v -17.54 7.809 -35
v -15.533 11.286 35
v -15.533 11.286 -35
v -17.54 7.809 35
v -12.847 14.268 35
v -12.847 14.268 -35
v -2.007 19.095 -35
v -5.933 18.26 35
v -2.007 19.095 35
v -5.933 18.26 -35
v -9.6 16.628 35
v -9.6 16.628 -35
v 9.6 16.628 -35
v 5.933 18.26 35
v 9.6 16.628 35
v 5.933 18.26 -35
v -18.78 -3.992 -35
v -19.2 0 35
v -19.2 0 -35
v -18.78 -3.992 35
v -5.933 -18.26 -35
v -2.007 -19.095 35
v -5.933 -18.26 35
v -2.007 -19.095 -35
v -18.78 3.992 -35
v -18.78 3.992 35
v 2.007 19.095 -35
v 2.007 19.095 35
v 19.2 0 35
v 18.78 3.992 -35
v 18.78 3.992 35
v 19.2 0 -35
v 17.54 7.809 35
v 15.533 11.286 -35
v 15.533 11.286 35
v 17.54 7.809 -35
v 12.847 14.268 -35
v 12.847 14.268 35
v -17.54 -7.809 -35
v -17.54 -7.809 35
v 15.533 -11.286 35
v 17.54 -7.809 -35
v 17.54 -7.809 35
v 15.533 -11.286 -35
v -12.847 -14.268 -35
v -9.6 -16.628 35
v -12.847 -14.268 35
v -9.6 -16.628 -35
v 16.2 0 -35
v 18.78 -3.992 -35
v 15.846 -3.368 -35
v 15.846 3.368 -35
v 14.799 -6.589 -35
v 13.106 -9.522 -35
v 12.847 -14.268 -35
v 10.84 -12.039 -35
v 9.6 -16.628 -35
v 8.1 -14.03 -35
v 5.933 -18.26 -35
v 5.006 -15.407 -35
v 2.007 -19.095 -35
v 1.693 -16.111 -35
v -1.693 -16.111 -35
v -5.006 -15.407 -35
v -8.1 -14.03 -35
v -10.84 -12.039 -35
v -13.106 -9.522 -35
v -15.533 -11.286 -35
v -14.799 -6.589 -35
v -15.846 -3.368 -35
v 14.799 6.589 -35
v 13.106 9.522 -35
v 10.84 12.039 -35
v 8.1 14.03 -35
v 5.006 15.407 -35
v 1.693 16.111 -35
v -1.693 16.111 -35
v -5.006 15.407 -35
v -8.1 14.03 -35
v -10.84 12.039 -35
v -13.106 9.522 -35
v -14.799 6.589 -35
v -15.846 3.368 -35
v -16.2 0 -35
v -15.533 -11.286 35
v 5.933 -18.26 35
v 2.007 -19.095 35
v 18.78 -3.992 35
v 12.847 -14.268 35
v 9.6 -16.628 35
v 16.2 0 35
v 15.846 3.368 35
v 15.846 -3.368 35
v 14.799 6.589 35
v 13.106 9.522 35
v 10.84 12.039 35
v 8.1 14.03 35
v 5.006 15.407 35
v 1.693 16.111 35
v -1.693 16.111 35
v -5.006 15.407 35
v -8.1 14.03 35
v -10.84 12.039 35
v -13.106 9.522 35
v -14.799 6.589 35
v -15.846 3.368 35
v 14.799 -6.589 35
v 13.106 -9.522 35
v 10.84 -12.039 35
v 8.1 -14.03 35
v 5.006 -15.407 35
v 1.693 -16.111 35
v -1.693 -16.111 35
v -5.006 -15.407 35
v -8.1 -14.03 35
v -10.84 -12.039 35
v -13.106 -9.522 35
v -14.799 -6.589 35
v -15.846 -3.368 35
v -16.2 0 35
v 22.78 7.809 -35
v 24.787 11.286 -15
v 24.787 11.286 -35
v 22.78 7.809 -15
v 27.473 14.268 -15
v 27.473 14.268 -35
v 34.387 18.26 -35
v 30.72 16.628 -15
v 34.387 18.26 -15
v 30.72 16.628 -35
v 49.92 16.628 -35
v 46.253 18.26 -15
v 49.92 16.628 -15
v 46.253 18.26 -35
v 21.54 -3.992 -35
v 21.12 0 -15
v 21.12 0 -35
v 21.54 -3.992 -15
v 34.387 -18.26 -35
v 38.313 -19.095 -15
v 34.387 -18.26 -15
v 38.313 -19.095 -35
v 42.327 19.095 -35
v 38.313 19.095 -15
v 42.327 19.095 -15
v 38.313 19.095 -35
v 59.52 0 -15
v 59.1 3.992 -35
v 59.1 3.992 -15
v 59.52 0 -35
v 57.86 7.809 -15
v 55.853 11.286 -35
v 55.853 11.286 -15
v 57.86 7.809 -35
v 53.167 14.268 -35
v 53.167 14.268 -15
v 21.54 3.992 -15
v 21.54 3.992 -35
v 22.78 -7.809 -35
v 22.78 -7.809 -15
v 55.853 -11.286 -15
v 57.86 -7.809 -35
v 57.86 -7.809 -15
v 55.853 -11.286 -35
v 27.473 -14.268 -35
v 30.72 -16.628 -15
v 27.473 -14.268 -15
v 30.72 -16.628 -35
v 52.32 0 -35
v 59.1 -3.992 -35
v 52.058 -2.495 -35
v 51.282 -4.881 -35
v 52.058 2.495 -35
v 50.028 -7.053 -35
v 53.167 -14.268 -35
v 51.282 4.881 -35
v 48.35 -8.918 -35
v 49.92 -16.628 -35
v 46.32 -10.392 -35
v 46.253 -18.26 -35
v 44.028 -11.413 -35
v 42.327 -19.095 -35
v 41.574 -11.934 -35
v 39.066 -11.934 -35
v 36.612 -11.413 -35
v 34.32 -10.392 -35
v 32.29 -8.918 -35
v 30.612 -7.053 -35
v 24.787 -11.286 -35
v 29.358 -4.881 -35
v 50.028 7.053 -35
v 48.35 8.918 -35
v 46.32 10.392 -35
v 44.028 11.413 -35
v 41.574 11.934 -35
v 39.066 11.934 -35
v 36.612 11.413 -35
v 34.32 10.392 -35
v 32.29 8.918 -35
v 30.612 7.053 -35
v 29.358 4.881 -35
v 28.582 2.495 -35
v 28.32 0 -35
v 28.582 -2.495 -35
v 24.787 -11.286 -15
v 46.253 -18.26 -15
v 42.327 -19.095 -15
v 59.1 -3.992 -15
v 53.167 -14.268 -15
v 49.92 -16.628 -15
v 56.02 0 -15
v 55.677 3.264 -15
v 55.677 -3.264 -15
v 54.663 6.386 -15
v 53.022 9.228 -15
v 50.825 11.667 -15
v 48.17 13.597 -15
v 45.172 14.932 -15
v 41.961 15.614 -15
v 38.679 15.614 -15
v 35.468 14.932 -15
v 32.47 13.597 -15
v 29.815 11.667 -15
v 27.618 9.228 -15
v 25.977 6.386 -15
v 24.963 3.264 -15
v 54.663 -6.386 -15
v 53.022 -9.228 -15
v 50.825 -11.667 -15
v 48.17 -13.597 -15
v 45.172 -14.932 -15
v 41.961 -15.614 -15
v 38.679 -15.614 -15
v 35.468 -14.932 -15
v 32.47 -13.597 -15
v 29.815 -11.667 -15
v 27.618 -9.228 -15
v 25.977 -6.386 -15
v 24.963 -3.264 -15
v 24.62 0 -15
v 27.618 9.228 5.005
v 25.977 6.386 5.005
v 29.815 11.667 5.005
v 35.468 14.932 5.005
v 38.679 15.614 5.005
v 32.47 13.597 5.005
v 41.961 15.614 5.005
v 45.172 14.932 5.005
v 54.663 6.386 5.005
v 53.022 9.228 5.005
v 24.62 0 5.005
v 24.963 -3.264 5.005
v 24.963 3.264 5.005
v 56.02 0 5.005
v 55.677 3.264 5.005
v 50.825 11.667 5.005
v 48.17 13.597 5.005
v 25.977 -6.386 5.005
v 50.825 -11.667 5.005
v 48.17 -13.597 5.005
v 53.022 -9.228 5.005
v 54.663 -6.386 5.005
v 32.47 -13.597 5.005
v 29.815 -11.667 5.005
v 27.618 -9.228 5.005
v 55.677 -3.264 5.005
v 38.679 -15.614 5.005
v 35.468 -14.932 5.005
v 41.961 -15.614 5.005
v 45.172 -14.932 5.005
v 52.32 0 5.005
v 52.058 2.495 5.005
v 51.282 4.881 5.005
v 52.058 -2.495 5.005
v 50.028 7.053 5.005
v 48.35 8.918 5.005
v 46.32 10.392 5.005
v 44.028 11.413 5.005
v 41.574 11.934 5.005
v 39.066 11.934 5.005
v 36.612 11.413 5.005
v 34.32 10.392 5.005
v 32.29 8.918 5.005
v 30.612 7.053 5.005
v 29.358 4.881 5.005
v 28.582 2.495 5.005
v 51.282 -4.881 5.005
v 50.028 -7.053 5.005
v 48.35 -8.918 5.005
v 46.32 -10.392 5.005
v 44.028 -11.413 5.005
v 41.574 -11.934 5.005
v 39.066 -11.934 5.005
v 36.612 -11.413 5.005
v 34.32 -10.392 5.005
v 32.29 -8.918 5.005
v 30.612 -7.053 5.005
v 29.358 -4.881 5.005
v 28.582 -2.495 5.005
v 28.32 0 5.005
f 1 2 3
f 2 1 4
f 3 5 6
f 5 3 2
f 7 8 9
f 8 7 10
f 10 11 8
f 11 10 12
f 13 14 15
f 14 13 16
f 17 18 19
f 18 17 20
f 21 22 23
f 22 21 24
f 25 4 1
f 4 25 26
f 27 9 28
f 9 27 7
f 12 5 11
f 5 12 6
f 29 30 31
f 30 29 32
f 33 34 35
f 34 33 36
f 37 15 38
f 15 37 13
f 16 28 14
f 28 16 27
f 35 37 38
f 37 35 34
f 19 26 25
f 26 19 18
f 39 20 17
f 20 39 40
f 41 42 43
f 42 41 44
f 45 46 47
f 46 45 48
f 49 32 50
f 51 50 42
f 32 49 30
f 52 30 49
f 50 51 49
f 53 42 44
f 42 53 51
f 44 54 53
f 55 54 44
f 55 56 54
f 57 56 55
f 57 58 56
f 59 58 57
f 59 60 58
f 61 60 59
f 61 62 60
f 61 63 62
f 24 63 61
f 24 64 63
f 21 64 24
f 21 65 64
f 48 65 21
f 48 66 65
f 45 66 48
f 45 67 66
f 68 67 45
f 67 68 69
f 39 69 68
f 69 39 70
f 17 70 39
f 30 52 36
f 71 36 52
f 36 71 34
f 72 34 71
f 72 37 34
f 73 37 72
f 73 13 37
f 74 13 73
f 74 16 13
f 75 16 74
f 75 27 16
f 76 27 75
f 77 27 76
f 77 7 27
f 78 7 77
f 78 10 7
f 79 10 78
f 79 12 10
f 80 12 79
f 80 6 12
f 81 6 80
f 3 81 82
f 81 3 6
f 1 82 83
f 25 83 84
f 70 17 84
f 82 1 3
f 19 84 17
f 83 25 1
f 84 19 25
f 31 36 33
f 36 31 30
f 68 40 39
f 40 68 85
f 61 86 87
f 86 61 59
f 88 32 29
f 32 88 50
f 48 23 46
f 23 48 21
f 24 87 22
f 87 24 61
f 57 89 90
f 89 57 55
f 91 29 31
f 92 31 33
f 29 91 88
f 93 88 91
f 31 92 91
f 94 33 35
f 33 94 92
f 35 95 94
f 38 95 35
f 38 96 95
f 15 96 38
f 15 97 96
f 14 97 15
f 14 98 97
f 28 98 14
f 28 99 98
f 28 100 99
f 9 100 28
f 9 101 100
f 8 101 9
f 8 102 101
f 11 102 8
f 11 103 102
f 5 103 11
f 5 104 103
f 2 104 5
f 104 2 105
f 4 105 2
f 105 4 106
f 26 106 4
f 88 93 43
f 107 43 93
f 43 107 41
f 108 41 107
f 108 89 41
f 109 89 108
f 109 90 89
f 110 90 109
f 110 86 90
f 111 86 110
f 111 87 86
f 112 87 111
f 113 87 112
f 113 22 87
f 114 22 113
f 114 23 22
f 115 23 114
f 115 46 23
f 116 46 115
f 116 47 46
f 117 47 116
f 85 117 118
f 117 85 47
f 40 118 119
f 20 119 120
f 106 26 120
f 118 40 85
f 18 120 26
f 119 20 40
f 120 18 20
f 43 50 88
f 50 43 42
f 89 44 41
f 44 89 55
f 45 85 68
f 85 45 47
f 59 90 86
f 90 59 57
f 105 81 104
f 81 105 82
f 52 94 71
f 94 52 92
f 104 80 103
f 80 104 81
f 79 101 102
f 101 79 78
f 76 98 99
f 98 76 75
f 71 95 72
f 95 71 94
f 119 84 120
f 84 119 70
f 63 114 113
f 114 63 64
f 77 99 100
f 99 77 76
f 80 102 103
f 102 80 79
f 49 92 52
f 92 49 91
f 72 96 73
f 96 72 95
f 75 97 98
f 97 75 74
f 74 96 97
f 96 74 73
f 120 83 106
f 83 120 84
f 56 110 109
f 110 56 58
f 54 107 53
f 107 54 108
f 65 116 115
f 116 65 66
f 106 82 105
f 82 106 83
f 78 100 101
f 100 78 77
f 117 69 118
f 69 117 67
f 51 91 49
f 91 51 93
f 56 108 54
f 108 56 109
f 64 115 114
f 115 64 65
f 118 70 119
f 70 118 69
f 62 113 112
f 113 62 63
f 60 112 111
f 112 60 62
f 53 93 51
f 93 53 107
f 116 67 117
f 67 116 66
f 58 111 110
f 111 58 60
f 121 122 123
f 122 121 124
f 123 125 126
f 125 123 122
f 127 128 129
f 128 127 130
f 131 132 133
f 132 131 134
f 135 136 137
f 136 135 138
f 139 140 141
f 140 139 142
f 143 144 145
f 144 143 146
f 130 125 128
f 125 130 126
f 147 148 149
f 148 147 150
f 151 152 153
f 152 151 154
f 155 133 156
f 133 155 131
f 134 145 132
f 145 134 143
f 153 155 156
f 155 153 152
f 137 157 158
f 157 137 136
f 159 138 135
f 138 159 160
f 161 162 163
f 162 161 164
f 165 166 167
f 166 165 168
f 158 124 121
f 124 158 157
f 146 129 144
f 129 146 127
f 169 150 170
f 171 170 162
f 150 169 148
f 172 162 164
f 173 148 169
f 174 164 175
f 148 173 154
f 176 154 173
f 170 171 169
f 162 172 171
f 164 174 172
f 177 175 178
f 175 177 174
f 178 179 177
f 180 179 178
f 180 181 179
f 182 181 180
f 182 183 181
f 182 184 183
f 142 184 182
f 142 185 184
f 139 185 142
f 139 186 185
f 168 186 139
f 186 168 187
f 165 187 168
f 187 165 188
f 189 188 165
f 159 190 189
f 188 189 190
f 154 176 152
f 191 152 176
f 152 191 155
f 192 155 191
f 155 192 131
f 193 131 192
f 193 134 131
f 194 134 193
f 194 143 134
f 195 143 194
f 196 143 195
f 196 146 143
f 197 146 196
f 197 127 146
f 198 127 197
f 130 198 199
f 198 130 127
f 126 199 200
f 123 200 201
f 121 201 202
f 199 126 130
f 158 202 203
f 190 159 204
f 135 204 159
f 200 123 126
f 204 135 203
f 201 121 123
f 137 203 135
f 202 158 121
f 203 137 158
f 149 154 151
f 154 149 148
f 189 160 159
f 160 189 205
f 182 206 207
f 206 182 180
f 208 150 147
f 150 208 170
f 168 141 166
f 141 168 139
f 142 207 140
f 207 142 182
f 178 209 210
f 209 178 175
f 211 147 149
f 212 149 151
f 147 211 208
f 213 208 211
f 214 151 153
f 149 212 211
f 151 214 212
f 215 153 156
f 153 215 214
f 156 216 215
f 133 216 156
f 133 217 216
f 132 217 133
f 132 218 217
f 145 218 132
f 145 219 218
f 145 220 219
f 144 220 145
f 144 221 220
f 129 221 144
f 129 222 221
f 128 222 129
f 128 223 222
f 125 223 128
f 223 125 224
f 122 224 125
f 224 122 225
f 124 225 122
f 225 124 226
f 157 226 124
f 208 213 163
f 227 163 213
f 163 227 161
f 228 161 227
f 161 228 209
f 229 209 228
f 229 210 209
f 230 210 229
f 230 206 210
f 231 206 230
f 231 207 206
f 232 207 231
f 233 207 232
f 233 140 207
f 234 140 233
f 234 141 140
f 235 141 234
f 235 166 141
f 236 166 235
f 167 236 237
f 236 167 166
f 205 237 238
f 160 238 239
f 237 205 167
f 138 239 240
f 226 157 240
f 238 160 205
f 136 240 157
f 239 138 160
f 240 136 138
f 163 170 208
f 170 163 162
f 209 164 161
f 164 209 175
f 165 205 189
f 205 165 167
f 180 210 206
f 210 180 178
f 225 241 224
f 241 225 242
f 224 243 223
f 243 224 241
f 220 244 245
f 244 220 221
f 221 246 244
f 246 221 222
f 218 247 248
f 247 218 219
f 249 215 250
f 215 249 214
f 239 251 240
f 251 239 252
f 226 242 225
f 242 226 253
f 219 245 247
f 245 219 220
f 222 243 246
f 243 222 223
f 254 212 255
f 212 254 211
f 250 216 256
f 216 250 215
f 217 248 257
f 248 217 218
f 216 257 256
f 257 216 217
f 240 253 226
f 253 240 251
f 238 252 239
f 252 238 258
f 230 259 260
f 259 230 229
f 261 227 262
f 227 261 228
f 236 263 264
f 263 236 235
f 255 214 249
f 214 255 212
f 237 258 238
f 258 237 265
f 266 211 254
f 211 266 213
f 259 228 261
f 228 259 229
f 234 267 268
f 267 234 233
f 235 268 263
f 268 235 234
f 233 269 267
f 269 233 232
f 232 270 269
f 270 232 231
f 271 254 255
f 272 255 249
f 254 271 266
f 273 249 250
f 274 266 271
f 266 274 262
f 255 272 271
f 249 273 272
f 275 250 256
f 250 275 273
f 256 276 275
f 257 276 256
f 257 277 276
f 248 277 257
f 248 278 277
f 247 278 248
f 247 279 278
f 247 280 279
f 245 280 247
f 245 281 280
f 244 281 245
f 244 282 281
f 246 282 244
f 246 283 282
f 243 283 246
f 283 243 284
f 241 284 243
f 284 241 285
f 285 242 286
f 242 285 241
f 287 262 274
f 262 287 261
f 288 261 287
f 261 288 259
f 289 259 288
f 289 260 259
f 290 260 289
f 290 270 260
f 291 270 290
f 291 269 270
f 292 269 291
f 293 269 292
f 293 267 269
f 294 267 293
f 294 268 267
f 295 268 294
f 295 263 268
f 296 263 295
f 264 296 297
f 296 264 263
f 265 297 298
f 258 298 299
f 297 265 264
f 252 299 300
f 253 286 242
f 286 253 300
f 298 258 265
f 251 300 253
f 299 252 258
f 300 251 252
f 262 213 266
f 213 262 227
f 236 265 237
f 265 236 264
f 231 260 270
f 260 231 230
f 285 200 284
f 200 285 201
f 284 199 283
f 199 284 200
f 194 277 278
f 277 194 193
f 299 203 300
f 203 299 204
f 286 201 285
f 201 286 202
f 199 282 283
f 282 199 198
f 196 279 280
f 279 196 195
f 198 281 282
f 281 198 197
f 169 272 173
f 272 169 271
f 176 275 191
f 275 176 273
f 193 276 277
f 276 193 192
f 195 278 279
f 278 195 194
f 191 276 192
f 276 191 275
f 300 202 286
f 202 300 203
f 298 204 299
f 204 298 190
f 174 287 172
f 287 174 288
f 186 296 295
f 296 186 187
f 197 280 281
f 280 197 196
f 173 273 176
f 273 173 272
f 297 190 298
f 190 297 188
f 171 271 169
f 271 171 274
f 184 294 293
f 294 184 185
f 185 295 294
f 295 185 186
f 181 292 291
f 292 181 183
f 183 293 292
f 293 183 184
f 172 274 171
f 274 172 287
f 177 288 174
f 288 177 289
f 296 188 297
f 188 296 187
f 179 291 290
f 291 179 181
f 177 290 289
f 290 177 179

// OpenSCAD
// Light-blocking cylinder for 
// Created by Juan Angueyra (angueyra@nih.gov)
// September 2018
lbc_r=38.4/2; //(to fit top inner ring of the lid of 35-mm petri dishes)
lbc_h=70;
lbc_wall = 3;

adp_h=90-lbc_h;
adp_r = 24/2;

 // main call
3Dprintflag=1;
lbc_tr = 3Dprintflag ? [0,0,0] : [0,0,0];
lbc_rot = 3Dprintflag ? [0,180,0] : [0,0,0];

adp_tr = 3Dprintflag ? [lbc_r*2.1,0,0] : [0,0,0];

translate(lbc_tr){rotate(lbc_rot){lbc();}}
translate(adp_tr){rotate(lbc_rot){adp();}}


// modules
module lbc() {
	difference() {
		cylinder(r=lbc_r,h=lbc_h,center=true);
		translate([0,0,-lbc_h/8]) {cylinder(r=lbc_r-lbc_wall,h=lbc_h*2,center=true);}
	}
}

module adp() {
	difference() {
		union() {
			translate([0,0,lbc_h/2-adp_h/2]) {cylinder(r=lbc_r,h=adp_h,center=true);}
			translate([0,0,lbc_h/2-adp_h-.005]) {cylinder(r=lbc_r-lbc_wall-.5,h=adp_h*2,center=true);}
		}
		translate([0,0,lbc_h/2]) {cylinder(r=adp_r,h=adp_h*8,center=true);}
	}
	
}


module trapezoid(width_base, width_top,height,thickness) {
	translate([height/2,-width_base/2,thickness/2]) {rotate([0,0,90]) {
  		linear_extrude(height = thickness) polygon(points=[[0,0],[width_base,0],[width_base-(width_base-width_top)/2,height],[(width_base-width_top)/2,height]], paths=[[0,1,2,3]]);  
	}}
}
